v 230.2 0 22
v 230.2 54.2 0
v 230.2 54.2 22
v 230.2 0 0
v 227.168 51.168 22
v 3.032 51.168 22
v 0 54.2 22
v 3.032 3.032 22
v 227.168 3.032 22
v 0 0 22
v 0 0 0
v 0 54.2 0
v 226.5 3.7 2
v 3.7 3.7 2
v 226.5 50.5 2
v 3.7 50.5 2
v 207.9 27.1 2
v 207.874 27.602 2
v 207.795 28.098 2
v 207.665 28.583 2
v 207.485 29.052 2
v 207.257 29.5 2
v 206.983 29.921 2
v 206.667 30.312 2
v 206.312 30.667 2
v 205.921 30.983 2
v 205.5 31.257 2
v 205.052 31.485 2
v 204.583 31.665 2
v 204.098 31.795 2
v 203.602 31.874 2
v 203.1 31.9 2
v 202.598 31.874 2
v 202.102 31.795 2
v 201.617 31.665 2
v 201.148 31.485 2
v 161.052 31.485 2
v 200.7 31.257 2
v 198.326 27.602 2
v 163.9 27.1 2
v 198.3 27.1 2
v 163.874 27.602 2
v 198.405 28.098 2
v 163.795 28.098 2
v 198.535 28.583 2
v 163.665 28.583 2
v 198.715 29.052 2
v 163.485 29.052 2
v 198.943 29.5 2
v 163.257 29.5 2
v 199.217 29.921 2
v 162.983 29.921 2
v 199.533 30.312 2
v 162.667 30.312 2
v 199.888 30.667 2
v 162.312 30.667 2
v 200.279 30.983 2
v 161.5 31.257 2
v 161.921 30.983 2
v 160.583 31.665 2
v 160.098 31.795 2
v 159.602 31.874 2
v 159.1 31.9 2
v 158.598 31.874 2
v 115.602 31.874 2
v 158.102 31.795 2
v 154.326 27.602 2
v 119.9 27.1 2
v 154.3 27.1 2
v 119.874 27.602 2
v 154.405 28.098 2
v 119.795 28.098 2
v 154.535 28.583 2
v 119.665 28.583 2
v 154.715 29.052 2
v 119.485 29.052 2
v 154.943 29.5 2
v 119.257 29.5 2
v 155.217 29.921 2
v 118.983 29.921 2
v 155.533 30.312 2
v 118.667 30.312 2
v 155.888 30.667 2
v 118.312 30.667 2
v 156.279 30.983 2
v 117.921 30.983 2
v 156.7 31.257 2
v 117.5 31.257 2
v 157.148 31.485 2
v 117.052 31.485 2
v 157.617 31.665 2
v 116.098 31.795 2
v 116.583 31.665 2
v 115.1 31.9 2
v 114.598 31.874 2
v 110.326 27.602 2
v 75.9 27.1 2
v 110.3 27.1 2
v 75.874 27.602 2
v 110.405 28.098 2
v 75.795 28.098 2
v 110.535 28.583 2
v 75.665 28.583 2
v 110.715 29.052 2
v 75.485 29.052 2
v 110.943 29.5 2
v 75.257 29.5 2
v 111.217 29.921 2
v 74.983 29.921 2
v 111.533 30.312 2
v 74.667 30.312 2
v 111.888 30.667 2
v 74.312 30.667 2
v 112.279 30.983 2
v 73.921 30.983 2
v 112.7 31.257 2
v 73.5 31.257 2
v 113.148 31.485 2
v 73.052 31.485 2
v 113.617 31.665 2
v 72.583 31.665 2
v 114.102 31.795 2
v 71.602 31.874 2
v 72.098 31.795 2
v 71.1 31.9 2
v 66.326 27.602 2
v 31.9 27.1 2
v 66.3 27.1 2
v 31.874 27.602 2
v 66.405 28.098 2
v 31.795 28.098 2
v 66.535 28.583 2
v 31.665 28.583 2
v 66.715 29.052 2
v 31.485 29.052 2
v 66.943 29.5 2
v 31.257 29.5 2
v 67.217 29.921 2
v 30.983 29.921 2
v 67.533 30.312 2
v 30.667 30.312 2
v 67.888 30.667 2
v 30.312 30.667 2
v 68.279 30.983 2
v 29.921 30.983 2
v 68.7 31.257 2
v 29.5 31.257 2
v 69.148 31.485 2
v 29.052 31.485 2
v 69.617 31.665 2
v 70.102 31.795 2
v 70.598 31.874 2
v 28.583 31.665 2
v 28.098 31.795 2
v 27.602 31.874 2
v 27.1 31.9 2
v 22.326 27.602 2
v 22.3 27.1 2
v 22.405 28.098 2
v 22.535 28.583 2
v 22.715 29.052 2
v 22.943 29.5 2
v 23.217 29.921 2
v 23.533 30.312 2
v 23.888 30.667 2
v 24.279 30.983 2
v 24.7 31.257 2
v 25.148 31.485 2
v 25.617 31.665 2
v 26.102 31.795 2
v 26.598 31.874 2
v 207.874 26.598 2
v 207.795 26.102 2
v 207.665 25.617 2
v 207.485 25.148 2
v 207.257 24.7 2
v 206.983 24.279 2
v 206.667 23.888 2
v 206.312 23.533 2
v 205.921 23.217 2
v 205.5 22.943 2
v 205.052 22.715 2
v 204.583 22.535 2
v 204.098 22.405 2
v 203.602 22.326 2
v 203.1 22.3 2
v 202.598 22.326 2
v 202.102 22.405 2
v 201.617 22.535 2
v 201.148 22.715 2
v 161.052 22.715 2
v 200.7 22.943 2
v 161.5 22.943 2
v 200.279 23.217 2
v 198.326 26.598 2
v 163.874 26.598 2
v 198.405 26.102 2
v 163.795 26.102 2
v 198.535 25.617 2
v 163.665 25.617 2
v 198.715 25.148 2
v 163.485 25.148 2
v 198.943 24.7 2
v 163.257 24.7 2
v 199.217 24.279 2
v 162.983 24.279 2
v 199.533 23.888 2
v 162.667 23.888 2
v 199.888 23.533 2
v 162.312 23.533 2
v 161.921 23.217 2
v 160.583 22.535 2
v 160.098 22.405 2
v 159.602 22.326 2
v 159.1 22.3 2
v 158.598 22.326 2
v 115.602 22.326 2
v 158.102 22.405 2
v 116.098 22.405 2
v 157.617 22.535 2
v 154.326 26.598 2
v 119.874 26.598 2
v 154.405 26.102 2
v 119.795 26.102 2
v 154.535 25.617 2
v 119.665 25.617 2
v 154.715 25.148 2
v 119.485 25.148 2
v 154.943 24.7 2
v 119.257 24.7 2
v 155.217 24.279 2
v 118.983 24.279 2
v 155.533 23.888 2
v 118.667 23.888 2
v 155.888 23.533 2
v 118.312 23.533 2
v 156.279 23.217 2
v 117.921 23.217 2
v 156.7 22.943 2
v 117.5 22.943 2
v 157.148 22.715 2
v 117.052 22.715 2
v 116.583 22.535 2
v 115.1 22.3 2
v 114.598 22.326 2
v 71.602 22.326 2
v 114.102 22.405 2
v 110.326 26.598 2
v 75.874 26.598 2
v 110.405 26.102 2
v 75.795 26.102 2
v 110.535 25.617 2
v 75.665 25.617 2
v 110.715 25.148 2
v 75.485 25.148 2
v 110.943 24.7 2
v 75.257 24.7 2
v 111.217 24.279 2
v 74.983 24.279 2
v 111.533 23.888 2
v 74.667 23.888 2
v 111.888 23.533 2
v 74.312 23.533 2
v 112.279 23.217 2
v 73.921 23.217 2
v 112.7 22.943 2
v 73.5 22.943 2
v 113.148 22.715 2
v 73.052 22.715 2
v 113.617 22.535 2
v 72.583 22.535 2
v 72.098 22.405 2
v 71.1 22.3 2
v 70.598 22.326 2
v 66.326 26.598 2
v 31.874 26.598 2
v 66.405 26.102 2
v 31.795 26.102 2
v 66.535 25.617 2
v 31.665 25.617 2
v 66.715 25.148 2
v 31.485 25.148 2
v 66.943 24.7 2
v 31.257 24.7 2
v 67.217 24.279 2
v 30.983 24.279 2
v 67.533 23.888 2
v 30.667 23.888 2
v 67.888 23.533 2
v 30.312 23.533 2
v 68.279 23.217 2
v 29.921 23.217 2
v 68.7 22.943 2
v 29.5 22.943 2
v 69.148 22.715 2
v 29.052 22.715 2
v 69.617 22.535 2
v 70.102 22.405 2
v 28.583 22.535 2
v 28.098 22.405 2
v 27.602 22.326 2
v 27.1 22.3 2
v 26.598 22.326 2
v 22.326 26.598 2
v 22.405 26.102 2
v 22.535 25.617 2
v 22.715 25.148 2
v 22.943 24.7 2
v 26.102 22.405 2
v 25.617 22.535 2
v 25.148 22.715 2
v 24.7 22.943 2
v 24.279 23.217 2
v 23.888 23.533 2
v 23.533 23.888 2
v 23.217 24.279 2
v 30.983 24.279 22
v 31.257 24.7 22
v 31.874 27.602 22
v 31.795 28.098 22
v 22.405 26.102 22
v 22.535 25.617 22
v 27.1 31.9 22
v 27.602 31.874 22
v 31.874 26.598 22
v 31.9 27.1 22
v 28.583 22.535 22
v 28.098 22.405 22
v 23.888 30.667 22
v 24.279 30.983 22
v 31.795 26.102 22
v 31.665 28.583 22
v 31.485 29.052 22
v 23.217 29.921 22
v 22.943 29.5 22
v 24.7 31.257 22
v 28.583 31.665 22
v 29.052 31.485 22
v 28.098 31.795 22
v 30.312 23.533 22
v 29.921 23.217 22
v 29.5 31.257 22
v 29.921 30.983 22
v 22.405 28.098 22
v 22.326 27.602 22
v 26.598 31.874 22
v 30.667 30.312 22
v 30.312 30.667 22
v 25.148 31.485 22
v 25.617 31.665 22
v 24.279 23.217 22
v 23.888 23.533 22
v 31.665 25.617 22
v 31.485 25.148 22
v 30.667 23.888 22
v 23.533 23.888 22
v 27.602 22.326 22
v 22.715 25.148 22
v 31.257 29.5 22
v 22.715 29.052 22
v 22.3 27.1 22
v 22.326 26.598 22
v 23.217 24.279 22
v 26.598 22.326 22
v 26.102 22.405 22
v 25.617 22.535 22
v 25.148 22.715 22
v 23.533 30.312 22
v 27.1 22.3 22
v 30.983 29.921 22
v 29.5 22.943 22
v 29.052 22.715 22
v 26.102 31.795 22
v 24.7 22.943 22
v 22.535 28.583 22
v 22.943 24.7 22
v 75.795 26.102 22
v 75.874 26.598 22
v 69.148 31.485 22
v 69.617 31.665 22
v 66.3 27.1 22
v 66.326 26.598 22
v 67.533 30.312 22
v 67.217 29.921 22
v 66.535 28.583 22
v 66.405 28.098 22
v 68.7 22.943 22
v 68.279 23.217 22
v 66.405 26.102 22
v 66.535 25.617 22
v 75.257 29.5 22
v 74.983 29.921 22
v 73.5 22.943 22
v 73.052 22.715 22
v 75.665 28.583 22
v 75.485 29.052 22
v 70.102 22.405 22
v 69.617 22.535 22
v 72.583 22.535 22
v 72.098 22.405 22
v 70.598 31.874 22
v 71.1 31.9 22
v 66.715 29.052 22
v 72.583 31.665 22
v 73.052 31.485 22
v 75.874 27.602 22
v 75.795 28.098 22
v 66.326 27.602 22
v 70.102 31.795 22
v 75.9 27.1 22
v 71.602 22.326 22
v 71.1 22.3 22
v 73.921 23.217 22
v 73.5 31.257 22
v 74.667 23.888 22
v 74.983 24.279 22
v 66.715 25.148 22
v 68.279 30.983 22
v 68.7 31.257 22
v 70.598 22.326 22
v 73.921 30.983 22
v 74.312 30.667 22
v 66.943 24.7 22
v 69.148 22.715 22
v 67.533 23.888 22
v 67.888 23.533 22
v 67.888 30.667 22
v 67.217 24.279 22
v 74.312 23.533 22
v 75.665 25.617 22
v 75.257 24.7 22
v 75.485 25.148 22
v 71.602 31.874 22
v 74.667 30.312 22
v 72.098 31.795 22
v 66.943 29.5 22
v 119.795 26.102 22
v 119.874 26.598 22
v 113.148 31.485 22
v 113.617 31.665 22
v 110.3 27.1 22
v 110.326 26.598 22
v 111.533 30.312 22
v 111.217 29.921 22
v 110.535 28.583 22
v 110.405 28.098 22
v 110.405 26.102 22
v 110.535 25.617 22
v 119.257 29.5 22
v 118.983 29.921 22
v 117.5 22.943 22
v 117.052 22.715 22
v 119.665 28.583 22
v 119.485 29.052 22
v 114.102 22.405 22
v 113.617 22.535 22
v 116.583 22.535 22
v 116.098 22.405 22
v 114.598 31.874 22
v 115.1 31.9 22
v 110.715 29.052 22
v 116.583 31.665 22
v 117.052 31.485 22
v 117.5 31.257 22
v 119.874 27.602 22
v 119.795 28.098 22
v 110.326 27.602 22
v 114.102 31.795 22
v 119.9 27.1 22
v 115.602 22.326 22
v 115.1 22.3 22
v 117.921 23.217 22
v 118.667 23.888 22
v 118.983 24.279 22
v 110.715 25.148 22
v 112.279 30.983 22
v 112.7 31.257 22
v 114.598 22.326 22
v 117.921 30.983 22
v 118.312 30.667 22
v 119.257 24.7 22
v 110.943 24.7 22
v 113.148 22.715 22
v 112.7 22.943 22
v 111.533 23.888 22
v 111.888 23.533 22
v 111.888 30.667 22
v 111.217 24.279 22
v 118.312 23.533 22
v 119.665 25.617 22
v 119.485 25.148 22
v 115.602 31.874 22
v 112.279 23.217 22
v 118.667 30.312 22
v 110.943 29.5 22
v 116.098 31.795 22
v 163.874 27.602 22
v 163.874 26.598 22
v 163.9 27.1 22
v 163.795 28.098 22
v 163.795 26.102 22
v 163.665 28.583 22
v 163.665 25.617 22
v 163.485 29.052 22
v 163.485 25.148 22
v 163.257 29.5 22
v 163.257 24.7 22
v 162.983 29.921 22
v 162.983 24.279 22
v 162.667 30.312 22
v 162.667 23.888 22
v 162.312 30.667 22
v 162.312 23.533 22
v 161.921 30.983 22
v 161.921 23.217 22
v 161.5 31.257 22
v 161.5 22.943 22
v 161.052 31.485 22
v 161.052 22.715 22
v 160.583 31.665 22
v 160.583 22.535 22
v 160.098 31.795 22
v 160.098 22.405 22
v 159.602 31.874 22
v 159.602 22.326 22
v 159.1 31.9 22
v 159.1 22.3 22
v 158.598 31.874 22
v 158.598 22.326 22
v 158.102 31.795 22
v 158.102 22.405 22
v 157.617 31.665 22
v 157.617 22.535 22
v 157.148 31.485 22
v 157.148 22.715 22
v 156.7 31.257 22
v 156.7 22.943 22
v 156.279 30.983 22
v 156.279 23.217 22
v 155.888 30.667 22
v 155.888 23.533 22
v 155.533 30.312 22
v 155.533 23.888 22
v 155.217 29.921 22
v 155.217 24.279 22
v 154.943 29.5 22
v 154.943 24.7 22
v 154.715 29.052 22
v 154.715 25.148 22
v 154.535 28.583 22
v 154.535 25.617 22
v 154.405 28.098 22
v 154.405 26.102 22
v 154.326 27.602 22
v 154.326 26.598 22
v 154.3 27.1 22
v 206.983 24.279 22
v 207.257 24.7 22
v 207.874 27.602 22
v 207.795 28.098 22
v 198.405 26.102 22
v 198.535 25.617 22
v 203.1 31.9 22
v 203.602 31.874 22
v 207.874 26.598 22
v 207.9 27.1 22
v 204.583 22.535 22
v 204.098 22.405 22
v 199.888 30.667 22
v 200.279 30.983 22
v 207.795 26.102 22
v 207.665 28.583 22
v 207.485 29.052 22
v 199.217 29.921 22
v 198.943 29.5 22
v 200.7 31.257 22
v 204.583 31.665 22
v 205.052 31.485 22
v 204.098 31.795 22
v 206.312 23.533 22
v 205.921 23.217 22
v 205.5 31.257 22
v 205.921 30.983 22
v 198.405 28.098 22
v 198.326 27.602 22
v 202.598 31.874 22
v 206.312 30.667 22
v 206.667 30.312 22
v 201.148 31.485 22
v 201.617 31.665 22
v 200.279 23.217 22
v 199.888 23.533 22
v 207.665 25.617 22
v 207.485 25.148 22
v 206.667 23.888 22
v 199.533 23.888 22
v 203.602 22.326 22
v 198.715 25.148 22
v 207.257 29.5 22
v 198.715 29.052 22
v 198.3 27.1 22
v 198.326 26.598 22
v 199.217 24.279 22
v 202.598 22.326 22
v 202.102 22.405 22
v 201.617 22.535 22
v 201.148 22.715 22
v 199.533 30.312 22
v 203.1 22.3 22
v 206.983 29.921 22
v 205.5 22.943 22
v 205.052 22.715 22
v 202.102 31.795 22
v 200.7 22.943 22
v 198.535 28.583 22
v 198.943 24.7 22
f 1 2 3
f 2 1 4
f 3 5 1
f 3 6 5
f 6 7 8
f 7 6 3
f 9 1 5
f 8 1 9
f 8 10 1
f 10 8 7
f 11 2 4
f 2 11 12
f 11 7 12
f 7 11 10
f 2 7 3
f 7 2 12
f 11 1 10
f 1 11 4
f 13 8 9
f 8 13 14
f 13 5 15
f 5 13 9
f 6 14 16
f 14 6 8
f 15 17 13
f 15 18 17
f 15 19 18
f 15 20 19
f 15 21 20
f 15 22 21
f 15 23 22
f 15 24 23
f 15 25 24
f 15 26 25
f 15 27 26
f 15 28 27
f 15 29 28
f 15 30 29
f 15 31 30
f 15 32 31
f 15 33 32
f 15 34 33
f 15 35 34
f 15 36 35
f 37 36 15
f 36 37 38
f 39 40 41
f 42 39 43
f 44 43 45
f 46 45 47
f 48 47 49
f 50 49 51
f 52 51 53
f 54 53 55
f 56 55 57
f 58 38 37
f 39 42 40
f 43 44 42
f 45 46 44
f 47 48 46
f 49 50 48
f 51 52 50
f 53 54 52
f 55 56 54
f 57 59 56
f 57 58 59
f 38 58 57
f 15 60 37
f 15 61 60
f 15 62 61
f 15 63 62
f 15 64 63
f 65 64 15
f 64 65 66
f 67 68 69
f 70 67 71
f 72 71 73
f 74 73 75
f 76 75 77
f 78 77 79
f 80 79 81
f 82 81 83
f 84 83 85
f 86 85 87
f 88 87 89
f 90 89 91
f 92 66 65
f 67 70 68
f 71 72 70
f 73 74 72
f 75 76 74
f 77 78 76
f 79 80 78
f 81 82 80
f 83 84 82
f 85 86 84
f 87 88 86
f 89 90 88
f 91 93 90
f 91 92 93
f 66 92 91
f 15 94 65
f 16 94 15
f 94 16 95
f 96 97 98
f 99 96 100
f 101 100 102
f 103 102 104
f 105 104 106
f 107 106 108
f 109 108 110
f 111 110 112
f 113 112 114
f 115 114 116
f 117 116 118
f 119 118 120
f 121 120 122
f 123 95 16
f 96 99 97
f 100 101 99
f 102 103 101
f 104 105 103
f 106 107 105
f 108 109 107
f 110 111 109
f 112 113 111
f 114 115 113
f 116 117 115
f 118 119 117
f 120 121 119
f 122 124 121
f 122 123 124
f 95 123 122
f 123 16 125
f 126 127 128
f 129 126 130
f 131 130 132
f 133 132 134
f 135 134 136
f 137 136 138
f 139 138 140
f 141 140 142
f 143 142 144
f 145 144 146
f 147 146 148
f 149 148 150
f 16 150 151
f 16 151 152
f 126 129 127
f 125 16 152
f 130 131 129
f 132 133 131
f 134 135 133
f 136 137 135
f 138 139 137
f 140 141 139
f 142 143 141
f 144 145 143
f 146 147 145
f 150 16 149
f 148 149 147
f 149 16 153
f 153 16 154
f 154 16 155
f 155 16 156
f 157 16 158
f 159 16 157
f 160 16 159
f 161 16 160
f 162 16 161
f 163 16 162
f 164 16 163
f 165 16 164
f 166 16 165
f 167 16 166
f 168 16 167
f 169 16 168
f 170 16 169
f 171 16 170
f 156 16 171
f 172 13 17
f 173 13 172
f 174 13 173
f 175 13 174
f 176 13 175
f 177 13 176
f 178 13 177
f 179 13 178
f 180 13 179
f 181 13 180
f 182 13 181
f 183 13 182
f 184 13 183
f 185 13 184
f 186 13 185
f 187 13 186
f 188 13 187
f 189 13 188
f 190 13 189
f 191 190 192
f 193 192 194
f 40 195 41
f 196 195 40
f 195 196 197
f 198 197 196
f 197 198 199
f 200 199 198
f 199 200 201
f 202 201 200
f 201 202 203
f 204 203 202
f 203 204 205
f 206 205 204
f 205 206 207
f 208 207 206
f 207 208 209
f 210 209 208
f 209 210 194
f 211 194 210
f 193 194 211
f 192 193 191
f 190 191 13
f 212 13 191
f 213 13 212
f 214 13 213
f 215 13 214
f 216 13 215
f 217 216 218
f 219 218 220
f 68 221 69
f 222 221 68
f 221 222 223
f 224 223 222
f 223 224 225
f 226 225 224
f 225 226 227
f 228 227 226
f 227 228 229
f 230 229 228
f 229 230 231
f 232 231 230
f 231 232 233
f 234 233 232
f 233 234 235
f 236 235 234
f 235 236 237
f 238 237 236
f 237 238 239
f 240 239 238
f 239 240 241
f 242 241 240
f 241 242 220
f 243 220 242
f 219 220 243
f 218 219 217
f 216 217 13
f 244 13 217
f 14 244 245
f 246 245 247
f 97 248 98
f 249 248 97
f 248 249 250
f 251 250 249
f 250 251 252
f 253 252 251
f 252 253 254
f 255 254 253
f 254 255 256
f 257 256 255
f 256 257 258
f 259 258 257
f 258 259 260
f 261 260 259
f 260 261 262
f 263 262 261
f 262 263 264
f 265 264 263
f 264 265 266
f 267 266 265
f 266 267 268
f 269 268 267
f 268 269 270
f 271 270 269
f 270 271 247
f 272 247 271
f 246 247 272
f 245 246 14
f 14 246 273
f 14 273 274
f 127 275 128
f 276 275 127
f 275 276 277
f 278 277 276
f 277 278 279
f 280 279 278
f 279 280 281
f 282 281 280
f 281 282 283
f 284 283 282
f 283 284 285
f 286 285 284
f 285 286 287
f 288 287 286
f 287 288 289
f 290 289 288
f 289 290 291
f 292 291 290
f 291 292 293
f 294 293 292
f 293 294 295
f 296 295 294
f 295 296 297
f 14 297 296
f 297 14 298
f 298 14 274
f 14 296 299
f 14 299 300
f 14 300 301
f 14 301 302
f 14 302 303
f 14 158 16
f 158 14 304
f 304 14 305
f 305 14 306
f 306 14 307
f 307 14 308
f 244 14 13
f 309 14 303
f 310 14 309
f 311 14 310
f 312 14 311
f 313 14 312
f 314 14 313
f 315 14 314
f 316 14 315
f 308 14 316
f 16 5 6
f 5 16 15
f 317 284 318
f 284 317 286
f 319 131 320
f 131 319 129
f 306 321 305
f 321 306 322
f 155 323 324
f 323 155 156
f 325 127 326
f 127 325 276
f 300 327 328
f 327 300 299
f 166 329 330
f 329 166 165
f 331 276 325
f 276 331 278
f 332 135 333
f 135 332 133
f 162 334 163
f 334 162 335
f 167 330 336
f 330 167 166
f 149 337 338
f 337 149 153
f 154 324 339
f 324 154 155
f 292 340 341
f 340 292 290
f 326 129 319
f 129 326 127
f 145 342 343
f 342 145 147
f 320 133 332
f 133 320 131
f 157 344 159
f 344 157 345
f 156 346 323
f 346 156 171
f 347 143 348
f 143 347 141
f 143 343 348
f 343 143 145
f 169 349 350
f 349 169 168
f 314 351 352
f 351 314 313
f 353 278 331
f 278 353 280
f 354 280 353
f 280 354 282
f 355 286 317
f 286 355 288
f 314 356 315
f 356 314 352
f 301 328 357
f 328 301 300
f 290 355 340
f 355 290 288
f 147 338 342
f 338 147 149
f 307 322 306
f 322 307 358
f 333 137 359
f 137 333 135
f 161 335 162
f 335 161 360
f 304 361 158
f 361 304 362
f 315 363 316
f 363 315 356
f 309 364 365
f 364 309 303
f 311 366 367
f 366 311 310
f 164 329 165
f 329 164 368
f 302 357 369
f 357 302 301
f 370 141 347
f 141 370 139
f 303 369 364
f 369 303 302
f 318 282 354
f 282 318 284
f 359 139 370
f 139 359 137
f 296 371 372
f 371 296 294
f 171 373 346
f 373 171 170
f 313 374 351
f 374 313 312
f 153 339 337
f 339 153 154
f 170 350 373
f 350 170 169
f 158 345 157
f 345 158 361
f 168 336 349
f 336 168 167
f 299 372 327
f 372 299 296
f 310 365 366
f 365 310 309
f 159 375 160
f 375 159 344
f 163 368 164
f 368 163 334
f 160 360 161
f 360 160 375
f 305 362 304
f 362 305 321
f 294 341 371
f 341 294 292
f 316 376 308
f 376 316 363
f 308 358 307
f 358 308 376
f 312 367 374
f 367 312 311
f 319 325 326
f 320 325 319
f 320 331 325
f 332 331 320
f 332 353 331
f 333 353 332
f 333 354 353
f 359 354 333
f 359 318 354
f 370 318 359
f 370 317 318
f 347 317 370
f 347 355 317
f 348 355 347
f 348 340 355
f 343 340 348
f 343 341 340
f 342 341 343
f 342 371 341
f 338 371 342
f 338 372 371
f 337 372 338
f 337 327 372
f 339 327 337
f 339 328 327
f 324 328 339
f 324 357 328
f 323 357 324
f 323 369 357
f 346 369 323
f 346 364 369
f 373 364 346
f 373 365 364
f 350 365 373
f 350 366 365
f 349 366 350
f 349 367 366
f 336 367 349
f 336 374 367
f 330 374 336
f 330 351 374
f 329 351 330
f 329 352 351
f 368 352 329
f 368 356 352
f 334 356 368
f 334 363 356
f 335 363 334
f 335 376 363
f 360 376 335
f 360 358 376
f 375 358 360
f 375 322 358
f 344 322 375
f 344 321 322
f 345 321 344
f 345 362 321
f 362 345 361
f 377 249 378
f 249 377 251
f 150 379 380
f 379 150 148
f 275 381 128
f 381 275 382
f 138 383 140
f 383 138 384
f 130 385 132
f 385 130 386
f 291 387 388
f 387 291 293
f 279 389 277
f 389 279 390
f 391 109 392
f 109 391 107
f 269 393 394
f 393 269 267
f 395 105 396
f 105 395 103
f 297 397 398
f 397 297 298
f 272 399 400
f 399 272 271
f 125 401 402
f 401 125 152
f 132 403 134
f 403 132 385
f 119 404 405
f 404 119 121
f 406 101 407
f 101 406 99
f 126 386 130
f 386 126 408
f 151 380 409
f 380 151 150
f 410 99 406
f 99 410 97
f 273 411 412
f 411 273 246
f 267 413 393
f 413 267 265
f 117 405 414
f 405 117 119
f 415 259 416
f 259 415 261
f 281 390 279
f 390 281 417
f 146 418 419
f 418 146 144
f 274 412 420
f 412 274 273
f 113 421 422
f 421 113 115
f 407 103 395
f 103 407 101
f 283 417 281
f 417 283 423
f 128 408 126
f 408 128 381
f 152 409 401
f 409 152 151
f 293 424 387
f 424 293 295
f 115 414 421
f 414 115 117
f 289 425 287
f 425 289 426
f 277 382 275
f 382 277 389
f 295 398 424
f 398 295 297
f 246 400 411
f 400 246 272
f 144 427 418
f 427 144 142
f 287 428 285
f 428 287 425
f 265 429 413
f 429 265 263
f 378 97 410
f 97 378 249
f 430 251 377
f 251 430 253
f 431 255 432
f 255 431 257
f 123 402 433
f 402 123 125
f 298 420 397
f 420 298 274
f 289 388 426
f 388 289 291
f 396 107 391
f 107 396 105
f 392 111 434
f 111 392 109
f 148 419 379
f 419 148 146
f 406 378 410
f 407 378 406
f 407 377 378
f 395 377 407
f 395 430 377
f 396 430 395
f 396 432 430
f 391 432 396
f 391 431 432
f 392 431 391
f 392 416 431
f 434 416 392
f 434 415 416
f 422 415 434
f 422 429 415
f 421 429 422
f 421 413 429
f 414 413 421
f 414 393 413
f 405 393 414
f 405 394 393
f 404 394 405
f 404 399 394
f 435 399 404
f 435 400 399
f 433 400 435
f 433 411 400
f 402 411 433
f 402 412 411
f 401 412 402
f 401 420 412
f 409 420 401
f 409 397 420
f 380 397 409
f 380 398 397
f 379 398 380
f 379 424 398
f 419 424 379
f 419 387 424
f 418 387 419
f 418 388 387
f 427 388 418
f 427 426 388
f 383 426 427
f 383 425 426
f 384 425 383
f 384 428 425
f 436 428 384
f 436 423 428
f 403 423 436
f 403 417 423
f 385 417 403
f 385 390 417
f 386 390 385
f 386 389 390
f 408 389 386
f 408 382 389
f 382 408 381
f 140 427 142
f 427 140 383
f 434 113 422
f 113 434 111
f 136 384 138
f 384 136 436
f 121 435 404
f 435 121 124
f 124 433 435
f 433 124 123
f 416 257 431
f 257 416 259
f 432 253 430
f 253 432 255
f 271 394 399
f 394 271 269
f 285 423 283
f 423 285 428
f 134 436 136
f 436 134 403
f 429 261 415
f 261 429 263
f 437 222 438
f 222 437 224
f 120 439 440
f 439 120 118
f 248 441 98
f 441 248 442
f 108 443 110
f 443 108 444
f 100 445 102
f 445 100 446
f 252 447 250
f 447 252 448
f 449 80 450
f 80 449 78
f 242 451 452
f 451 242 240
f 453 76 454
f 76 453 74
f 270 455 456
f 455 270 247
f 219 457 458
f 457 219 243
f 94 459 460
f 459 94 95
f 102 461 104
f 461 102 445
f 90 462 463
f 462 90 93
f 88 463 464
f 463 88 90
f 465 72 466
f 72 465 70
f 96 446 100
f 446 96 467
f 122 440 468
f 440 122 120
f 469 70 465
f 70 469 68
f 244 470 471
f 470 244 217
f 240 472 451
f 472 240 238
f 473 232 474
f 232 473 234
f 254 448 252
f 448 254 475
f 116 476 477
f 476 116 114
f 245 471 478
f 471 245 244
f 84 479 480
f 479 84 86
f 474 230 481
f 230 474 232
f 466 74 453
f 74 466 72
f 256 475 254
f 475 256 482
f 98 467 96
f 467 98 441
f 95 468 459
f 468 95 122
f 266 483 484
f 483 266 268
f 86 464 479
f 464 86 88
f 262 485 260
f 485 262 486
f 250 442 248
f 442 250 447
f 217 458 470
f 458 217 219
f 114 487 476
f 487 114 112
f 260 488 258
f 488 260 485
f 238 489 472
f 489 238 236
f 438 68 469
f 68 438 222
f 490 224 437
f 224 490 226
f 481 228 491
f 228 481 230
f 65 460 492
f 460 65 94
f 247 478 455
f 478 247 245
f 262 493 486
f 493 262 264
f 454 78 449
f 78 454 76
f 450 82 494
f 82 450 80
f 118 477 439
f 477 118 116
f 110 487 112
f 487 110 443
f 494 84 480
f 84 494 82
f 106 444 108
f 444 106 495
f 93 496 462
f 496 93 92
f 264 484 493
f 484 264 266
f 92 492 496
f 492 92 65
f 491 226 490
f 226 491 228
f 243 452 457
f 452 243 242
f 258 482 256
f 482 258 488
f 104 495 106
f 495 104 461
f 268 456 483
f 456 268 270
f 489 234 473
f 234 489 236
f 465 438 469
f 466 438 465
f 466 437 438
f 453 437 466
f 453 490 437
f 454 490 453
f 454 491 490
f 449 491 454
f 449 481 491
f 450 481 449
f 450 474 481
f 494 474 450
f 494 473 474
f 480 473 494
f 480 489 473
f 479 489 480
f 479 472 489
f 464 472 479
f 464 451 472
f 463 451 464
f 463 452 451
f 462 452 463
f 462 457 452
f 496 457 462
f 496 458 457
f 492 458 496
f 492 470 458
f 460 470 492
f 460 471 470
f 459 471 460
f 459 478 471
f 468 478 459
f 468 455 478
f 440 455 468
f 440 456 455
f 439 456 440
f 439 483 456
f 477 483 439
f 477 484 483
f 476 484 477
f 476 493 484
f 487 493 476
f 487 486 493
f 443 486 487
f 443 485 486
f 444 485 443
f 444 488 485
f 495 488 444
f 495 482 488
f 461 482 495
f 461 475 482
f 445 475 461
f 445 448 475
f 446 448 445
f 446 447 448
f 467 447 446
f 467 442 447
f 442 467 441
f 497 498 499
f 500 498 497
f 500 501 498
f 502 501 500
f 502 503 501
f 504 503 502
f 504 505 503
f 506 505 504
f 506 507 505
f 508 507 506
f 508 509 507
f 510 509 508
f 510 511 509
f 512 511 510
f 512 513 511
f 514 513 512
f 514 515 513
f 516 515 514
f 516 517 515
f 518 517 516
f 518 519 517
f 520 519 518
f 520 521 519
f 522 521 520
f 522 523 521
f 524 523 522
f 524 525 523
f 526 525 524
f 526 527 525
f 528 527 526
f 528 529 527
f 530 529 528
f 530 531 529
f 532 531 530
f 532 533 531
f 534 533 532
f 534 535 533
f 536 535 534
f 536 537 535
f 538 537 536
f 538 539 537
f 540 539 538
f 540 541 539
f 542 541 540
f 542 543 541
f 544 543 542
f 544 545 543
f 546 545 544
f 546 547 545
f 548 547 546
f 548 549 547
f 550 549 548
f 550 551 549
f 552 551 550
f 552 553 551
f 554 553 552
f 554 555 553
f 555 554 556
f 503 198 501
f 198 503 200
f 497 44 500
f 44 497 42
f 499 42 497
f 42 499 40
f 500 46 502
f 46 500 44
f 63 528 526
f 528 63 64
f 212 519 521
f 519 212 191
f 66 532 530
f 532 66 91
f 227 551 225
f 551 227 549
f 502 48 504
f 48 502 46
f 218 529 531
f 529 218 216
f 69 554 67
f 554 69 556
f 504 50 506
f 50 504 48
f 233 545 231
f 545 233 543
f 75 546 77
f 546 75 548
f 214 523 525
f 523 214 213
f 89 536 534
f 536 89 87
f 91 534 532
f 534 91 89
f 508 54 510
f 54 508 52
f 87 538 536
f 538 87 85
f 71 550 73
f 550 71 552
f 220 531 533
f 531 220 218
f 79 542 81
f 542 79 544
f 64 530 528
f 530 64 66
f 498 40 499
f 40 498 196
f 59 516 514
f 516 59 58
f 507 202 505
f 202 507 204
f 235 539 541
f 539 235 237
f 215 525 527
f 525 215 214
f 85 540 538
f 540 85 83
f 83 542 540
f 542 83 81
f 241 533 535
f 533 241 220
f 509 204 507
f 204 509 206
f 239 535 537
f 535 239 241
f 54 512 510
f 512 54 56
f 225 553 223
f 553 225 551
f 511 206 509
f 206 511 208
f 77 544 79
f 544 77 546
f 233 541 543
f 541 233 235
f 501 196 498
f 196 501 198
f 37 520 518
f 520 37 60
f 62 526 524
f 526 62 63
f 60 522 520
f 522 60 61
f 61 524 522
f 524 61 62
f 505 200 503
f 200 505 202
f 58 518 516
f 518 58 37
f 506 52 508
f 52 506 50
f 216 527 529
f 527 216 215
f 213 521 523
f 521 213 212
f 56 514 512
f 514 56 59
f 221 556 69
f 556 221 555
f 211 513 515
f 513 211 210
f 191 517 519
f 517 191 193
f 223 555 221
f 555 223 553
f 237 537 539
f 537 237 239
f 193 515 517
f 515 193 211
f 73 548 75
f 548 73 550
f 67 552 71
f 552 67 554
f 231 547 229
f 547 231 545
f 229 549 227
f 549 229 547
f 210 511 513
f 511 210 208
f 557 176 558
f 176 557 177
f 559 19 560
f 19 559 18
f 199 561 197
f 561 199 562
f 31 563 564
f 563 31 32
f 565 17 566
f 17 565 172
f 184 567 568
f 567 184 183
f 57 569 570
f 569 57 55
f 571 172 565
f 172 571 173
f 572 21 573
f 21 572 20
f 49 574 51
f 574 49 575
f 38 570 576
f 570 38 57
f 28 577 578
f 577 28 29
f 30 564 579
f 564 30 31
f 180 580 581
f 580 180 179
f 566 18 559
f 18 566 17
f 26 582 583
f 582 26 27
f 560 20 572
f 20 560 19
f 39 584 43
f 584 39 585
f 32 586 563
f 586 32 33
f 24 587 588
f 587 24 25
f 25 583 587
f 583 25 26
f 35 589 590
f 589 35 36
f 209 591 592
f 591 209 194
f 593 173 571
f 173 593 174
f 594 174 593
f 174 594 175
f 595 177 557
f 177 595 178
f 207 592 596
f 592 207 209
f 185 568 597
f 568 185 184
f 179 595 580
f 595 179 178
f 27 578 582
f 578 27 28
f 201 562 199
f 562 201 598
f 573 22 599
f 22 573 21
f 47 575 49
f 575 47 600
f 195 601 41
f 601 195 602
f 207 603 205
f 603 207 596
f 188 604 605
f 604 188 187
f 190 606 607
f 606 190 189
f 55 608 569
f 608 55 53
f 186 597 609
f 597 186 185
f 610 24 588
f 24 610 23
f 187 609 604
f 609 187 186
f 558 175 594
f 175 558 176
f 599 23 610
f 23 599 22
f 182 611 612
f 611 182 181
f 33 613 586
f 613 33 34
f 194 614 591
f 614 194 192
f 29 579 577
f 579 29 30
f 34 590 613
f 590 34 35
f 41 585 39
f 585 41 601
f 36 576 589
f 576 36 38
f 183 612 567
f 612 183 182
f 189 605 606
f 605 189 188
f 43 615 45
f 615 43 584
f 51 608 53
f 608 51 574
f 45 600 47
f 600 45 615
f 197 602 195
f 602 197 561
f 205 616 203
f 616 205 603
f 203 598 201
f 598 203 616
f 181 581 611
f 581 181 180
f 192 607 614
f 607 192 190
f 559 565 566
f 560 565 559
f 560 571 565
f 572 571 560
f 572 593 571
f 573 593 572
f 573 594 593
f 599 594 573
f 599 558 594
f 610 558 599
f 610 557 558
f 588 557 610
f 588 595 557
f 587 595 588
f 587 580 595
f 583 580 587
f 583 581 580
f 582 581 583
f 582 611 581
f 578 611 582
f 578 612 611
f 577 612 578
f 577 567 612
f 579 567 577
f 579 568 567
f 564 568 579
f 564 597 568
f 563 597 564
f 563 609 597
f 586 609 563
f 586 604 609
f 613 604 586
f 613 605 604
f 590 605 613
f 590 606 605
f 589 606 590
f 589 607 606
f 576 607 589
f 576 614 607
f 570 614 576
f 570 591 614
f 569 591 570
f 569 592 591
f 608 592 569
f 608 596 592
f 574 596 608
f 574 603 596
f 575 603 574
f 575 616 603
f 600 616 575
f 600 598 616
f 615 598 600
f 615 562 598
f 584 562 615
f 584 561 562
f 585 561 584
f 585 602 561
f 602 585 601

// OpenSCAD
// --- 3Dプリント用 VTM-T20ケース 蓋 ---

// [表示設定] 内部構造を確認するために断面図を表示します
show_cross_section = false;   // ★ 実際に3D プリントする際は false にしてください ★

// [ケース側の寸法（変更しないでください）]
slot_width = 41.0;
slot_depth = 41.0;
slot_count = 5;
wall_thickness = 3.0;

// [自動計算パラメータ（ケース本体の外寸）]
total_inner_width = (slot_width * slot_count) + (wall_thickness * (slot_count - 1));
case_outer_width = total_inner_width + (wall_thickness * 2);
case_outer_depth = slot_depth + (wall_thickness * 2);

// [フタ（Lid）の設定]
clearance_top = 0.6;      // ★入り口の隙間（広め）
clearance_bottom = -0.1;  // ★奥の隙間（マイナスにして摩擦で食い込ませる）

lid_wall_thickness = 3.0; // 押し込む力に耐えるため肉厚（3mm）に
lid_top_thickness = 2.0;  // フタの天井の肉厚
lid_skirt_height = 20.0;  // フタがケースに被さる深さ

// [固定用ペグ（棒）の設定]
peg_diameter = 9.6;       // 10mm穴にスムーズに入るサイズ

// [フタの寸法計算]
lid_inner_width = case_outer_width + (clearance_top * 2);
lid_inner_depth = case_outer_depth + (clearance_top * 2);
lid_outer_width = lid_inner_width + (lid_wall_thickness * 2);
lid_outer_depth = lid_inner_depth + (lid_wall_thickness * 2);
lid_total_height = lid_skirt_height + lid_top_thickness;

$fn = 60; // 曲面の滑らかさ

// --- モジュール定義 ---

module case_lid_friction_fit() {
    union() {
        difference() {
            // --- 外側の形状 ---
            cube([lid_outer_width, lid_outer_depth, lid_total_height], center = false);

            // --- 内側のくり抜き（★テーパー状に絞る★） ---
            // hull() を使って、奥（狭い）と手前（広い）を滑らかに繋ぎます
            translate([lid_outer_width / 2, lid_outer_depth / 2, lid_top_thickness]) {
                hull() {
                    // 1. 奥側（フタの天井付近）：マイナスクリアランスで絞る
                    translate([0, 0, 0.05])
                        cube([case_outer_width + (clearance_bottom * 2), 
                              case_outer_depth + (clearance_bottom * 2), 
                              0.1], center = true);
                    
                    // 2. 入り口側：プラスクリアランスでスポッと入る
                    translate([0, 0, lid_skirt_height + 1.0])
                        cube([case_outer_width + (clearance_top * 2), 
                              case_outer_depth + (clearance_top * 2), 
                              0.1], center = true);
                }
            }
        }

        // --- 固定用の棒（ペグ）を追加 ---
        for (i = [0 : slot_count - 1]) {
            // ケース基準でのスロット中心座標を計算
            case_x_center = wall_thickness + (i * (slot_width + wall_thickness)) + (slot_width / 2);
            case_y_center = wall_thickness + (slot_depth / 2);
            
            // フタ基準の座標に変換
            lid_x_center = case_x_center + lid_wall_thickness + clearance_top;
            lid_y_center = case_y_center + lid_wall_thickness + clearance_top;

            // 天井（Z=0）から下に向かって生やす
            translate([lid_x_center, lid_y_center, 0])
                cylinder(h = lid_total_height, d = peg_diameter, center = false);
        }
    }
}

// --- 描画処理 ---
if (show_cross_section) {
    difference() {
        case_lid_friction_fit();
        // 断面を見せるために手前半分をカット
        translate([lid_outer_width / 2, -50, -10]) cube([lid_outer_width, 200, 300]);
    }
} else {
    case_lid_friction_fit();
}
